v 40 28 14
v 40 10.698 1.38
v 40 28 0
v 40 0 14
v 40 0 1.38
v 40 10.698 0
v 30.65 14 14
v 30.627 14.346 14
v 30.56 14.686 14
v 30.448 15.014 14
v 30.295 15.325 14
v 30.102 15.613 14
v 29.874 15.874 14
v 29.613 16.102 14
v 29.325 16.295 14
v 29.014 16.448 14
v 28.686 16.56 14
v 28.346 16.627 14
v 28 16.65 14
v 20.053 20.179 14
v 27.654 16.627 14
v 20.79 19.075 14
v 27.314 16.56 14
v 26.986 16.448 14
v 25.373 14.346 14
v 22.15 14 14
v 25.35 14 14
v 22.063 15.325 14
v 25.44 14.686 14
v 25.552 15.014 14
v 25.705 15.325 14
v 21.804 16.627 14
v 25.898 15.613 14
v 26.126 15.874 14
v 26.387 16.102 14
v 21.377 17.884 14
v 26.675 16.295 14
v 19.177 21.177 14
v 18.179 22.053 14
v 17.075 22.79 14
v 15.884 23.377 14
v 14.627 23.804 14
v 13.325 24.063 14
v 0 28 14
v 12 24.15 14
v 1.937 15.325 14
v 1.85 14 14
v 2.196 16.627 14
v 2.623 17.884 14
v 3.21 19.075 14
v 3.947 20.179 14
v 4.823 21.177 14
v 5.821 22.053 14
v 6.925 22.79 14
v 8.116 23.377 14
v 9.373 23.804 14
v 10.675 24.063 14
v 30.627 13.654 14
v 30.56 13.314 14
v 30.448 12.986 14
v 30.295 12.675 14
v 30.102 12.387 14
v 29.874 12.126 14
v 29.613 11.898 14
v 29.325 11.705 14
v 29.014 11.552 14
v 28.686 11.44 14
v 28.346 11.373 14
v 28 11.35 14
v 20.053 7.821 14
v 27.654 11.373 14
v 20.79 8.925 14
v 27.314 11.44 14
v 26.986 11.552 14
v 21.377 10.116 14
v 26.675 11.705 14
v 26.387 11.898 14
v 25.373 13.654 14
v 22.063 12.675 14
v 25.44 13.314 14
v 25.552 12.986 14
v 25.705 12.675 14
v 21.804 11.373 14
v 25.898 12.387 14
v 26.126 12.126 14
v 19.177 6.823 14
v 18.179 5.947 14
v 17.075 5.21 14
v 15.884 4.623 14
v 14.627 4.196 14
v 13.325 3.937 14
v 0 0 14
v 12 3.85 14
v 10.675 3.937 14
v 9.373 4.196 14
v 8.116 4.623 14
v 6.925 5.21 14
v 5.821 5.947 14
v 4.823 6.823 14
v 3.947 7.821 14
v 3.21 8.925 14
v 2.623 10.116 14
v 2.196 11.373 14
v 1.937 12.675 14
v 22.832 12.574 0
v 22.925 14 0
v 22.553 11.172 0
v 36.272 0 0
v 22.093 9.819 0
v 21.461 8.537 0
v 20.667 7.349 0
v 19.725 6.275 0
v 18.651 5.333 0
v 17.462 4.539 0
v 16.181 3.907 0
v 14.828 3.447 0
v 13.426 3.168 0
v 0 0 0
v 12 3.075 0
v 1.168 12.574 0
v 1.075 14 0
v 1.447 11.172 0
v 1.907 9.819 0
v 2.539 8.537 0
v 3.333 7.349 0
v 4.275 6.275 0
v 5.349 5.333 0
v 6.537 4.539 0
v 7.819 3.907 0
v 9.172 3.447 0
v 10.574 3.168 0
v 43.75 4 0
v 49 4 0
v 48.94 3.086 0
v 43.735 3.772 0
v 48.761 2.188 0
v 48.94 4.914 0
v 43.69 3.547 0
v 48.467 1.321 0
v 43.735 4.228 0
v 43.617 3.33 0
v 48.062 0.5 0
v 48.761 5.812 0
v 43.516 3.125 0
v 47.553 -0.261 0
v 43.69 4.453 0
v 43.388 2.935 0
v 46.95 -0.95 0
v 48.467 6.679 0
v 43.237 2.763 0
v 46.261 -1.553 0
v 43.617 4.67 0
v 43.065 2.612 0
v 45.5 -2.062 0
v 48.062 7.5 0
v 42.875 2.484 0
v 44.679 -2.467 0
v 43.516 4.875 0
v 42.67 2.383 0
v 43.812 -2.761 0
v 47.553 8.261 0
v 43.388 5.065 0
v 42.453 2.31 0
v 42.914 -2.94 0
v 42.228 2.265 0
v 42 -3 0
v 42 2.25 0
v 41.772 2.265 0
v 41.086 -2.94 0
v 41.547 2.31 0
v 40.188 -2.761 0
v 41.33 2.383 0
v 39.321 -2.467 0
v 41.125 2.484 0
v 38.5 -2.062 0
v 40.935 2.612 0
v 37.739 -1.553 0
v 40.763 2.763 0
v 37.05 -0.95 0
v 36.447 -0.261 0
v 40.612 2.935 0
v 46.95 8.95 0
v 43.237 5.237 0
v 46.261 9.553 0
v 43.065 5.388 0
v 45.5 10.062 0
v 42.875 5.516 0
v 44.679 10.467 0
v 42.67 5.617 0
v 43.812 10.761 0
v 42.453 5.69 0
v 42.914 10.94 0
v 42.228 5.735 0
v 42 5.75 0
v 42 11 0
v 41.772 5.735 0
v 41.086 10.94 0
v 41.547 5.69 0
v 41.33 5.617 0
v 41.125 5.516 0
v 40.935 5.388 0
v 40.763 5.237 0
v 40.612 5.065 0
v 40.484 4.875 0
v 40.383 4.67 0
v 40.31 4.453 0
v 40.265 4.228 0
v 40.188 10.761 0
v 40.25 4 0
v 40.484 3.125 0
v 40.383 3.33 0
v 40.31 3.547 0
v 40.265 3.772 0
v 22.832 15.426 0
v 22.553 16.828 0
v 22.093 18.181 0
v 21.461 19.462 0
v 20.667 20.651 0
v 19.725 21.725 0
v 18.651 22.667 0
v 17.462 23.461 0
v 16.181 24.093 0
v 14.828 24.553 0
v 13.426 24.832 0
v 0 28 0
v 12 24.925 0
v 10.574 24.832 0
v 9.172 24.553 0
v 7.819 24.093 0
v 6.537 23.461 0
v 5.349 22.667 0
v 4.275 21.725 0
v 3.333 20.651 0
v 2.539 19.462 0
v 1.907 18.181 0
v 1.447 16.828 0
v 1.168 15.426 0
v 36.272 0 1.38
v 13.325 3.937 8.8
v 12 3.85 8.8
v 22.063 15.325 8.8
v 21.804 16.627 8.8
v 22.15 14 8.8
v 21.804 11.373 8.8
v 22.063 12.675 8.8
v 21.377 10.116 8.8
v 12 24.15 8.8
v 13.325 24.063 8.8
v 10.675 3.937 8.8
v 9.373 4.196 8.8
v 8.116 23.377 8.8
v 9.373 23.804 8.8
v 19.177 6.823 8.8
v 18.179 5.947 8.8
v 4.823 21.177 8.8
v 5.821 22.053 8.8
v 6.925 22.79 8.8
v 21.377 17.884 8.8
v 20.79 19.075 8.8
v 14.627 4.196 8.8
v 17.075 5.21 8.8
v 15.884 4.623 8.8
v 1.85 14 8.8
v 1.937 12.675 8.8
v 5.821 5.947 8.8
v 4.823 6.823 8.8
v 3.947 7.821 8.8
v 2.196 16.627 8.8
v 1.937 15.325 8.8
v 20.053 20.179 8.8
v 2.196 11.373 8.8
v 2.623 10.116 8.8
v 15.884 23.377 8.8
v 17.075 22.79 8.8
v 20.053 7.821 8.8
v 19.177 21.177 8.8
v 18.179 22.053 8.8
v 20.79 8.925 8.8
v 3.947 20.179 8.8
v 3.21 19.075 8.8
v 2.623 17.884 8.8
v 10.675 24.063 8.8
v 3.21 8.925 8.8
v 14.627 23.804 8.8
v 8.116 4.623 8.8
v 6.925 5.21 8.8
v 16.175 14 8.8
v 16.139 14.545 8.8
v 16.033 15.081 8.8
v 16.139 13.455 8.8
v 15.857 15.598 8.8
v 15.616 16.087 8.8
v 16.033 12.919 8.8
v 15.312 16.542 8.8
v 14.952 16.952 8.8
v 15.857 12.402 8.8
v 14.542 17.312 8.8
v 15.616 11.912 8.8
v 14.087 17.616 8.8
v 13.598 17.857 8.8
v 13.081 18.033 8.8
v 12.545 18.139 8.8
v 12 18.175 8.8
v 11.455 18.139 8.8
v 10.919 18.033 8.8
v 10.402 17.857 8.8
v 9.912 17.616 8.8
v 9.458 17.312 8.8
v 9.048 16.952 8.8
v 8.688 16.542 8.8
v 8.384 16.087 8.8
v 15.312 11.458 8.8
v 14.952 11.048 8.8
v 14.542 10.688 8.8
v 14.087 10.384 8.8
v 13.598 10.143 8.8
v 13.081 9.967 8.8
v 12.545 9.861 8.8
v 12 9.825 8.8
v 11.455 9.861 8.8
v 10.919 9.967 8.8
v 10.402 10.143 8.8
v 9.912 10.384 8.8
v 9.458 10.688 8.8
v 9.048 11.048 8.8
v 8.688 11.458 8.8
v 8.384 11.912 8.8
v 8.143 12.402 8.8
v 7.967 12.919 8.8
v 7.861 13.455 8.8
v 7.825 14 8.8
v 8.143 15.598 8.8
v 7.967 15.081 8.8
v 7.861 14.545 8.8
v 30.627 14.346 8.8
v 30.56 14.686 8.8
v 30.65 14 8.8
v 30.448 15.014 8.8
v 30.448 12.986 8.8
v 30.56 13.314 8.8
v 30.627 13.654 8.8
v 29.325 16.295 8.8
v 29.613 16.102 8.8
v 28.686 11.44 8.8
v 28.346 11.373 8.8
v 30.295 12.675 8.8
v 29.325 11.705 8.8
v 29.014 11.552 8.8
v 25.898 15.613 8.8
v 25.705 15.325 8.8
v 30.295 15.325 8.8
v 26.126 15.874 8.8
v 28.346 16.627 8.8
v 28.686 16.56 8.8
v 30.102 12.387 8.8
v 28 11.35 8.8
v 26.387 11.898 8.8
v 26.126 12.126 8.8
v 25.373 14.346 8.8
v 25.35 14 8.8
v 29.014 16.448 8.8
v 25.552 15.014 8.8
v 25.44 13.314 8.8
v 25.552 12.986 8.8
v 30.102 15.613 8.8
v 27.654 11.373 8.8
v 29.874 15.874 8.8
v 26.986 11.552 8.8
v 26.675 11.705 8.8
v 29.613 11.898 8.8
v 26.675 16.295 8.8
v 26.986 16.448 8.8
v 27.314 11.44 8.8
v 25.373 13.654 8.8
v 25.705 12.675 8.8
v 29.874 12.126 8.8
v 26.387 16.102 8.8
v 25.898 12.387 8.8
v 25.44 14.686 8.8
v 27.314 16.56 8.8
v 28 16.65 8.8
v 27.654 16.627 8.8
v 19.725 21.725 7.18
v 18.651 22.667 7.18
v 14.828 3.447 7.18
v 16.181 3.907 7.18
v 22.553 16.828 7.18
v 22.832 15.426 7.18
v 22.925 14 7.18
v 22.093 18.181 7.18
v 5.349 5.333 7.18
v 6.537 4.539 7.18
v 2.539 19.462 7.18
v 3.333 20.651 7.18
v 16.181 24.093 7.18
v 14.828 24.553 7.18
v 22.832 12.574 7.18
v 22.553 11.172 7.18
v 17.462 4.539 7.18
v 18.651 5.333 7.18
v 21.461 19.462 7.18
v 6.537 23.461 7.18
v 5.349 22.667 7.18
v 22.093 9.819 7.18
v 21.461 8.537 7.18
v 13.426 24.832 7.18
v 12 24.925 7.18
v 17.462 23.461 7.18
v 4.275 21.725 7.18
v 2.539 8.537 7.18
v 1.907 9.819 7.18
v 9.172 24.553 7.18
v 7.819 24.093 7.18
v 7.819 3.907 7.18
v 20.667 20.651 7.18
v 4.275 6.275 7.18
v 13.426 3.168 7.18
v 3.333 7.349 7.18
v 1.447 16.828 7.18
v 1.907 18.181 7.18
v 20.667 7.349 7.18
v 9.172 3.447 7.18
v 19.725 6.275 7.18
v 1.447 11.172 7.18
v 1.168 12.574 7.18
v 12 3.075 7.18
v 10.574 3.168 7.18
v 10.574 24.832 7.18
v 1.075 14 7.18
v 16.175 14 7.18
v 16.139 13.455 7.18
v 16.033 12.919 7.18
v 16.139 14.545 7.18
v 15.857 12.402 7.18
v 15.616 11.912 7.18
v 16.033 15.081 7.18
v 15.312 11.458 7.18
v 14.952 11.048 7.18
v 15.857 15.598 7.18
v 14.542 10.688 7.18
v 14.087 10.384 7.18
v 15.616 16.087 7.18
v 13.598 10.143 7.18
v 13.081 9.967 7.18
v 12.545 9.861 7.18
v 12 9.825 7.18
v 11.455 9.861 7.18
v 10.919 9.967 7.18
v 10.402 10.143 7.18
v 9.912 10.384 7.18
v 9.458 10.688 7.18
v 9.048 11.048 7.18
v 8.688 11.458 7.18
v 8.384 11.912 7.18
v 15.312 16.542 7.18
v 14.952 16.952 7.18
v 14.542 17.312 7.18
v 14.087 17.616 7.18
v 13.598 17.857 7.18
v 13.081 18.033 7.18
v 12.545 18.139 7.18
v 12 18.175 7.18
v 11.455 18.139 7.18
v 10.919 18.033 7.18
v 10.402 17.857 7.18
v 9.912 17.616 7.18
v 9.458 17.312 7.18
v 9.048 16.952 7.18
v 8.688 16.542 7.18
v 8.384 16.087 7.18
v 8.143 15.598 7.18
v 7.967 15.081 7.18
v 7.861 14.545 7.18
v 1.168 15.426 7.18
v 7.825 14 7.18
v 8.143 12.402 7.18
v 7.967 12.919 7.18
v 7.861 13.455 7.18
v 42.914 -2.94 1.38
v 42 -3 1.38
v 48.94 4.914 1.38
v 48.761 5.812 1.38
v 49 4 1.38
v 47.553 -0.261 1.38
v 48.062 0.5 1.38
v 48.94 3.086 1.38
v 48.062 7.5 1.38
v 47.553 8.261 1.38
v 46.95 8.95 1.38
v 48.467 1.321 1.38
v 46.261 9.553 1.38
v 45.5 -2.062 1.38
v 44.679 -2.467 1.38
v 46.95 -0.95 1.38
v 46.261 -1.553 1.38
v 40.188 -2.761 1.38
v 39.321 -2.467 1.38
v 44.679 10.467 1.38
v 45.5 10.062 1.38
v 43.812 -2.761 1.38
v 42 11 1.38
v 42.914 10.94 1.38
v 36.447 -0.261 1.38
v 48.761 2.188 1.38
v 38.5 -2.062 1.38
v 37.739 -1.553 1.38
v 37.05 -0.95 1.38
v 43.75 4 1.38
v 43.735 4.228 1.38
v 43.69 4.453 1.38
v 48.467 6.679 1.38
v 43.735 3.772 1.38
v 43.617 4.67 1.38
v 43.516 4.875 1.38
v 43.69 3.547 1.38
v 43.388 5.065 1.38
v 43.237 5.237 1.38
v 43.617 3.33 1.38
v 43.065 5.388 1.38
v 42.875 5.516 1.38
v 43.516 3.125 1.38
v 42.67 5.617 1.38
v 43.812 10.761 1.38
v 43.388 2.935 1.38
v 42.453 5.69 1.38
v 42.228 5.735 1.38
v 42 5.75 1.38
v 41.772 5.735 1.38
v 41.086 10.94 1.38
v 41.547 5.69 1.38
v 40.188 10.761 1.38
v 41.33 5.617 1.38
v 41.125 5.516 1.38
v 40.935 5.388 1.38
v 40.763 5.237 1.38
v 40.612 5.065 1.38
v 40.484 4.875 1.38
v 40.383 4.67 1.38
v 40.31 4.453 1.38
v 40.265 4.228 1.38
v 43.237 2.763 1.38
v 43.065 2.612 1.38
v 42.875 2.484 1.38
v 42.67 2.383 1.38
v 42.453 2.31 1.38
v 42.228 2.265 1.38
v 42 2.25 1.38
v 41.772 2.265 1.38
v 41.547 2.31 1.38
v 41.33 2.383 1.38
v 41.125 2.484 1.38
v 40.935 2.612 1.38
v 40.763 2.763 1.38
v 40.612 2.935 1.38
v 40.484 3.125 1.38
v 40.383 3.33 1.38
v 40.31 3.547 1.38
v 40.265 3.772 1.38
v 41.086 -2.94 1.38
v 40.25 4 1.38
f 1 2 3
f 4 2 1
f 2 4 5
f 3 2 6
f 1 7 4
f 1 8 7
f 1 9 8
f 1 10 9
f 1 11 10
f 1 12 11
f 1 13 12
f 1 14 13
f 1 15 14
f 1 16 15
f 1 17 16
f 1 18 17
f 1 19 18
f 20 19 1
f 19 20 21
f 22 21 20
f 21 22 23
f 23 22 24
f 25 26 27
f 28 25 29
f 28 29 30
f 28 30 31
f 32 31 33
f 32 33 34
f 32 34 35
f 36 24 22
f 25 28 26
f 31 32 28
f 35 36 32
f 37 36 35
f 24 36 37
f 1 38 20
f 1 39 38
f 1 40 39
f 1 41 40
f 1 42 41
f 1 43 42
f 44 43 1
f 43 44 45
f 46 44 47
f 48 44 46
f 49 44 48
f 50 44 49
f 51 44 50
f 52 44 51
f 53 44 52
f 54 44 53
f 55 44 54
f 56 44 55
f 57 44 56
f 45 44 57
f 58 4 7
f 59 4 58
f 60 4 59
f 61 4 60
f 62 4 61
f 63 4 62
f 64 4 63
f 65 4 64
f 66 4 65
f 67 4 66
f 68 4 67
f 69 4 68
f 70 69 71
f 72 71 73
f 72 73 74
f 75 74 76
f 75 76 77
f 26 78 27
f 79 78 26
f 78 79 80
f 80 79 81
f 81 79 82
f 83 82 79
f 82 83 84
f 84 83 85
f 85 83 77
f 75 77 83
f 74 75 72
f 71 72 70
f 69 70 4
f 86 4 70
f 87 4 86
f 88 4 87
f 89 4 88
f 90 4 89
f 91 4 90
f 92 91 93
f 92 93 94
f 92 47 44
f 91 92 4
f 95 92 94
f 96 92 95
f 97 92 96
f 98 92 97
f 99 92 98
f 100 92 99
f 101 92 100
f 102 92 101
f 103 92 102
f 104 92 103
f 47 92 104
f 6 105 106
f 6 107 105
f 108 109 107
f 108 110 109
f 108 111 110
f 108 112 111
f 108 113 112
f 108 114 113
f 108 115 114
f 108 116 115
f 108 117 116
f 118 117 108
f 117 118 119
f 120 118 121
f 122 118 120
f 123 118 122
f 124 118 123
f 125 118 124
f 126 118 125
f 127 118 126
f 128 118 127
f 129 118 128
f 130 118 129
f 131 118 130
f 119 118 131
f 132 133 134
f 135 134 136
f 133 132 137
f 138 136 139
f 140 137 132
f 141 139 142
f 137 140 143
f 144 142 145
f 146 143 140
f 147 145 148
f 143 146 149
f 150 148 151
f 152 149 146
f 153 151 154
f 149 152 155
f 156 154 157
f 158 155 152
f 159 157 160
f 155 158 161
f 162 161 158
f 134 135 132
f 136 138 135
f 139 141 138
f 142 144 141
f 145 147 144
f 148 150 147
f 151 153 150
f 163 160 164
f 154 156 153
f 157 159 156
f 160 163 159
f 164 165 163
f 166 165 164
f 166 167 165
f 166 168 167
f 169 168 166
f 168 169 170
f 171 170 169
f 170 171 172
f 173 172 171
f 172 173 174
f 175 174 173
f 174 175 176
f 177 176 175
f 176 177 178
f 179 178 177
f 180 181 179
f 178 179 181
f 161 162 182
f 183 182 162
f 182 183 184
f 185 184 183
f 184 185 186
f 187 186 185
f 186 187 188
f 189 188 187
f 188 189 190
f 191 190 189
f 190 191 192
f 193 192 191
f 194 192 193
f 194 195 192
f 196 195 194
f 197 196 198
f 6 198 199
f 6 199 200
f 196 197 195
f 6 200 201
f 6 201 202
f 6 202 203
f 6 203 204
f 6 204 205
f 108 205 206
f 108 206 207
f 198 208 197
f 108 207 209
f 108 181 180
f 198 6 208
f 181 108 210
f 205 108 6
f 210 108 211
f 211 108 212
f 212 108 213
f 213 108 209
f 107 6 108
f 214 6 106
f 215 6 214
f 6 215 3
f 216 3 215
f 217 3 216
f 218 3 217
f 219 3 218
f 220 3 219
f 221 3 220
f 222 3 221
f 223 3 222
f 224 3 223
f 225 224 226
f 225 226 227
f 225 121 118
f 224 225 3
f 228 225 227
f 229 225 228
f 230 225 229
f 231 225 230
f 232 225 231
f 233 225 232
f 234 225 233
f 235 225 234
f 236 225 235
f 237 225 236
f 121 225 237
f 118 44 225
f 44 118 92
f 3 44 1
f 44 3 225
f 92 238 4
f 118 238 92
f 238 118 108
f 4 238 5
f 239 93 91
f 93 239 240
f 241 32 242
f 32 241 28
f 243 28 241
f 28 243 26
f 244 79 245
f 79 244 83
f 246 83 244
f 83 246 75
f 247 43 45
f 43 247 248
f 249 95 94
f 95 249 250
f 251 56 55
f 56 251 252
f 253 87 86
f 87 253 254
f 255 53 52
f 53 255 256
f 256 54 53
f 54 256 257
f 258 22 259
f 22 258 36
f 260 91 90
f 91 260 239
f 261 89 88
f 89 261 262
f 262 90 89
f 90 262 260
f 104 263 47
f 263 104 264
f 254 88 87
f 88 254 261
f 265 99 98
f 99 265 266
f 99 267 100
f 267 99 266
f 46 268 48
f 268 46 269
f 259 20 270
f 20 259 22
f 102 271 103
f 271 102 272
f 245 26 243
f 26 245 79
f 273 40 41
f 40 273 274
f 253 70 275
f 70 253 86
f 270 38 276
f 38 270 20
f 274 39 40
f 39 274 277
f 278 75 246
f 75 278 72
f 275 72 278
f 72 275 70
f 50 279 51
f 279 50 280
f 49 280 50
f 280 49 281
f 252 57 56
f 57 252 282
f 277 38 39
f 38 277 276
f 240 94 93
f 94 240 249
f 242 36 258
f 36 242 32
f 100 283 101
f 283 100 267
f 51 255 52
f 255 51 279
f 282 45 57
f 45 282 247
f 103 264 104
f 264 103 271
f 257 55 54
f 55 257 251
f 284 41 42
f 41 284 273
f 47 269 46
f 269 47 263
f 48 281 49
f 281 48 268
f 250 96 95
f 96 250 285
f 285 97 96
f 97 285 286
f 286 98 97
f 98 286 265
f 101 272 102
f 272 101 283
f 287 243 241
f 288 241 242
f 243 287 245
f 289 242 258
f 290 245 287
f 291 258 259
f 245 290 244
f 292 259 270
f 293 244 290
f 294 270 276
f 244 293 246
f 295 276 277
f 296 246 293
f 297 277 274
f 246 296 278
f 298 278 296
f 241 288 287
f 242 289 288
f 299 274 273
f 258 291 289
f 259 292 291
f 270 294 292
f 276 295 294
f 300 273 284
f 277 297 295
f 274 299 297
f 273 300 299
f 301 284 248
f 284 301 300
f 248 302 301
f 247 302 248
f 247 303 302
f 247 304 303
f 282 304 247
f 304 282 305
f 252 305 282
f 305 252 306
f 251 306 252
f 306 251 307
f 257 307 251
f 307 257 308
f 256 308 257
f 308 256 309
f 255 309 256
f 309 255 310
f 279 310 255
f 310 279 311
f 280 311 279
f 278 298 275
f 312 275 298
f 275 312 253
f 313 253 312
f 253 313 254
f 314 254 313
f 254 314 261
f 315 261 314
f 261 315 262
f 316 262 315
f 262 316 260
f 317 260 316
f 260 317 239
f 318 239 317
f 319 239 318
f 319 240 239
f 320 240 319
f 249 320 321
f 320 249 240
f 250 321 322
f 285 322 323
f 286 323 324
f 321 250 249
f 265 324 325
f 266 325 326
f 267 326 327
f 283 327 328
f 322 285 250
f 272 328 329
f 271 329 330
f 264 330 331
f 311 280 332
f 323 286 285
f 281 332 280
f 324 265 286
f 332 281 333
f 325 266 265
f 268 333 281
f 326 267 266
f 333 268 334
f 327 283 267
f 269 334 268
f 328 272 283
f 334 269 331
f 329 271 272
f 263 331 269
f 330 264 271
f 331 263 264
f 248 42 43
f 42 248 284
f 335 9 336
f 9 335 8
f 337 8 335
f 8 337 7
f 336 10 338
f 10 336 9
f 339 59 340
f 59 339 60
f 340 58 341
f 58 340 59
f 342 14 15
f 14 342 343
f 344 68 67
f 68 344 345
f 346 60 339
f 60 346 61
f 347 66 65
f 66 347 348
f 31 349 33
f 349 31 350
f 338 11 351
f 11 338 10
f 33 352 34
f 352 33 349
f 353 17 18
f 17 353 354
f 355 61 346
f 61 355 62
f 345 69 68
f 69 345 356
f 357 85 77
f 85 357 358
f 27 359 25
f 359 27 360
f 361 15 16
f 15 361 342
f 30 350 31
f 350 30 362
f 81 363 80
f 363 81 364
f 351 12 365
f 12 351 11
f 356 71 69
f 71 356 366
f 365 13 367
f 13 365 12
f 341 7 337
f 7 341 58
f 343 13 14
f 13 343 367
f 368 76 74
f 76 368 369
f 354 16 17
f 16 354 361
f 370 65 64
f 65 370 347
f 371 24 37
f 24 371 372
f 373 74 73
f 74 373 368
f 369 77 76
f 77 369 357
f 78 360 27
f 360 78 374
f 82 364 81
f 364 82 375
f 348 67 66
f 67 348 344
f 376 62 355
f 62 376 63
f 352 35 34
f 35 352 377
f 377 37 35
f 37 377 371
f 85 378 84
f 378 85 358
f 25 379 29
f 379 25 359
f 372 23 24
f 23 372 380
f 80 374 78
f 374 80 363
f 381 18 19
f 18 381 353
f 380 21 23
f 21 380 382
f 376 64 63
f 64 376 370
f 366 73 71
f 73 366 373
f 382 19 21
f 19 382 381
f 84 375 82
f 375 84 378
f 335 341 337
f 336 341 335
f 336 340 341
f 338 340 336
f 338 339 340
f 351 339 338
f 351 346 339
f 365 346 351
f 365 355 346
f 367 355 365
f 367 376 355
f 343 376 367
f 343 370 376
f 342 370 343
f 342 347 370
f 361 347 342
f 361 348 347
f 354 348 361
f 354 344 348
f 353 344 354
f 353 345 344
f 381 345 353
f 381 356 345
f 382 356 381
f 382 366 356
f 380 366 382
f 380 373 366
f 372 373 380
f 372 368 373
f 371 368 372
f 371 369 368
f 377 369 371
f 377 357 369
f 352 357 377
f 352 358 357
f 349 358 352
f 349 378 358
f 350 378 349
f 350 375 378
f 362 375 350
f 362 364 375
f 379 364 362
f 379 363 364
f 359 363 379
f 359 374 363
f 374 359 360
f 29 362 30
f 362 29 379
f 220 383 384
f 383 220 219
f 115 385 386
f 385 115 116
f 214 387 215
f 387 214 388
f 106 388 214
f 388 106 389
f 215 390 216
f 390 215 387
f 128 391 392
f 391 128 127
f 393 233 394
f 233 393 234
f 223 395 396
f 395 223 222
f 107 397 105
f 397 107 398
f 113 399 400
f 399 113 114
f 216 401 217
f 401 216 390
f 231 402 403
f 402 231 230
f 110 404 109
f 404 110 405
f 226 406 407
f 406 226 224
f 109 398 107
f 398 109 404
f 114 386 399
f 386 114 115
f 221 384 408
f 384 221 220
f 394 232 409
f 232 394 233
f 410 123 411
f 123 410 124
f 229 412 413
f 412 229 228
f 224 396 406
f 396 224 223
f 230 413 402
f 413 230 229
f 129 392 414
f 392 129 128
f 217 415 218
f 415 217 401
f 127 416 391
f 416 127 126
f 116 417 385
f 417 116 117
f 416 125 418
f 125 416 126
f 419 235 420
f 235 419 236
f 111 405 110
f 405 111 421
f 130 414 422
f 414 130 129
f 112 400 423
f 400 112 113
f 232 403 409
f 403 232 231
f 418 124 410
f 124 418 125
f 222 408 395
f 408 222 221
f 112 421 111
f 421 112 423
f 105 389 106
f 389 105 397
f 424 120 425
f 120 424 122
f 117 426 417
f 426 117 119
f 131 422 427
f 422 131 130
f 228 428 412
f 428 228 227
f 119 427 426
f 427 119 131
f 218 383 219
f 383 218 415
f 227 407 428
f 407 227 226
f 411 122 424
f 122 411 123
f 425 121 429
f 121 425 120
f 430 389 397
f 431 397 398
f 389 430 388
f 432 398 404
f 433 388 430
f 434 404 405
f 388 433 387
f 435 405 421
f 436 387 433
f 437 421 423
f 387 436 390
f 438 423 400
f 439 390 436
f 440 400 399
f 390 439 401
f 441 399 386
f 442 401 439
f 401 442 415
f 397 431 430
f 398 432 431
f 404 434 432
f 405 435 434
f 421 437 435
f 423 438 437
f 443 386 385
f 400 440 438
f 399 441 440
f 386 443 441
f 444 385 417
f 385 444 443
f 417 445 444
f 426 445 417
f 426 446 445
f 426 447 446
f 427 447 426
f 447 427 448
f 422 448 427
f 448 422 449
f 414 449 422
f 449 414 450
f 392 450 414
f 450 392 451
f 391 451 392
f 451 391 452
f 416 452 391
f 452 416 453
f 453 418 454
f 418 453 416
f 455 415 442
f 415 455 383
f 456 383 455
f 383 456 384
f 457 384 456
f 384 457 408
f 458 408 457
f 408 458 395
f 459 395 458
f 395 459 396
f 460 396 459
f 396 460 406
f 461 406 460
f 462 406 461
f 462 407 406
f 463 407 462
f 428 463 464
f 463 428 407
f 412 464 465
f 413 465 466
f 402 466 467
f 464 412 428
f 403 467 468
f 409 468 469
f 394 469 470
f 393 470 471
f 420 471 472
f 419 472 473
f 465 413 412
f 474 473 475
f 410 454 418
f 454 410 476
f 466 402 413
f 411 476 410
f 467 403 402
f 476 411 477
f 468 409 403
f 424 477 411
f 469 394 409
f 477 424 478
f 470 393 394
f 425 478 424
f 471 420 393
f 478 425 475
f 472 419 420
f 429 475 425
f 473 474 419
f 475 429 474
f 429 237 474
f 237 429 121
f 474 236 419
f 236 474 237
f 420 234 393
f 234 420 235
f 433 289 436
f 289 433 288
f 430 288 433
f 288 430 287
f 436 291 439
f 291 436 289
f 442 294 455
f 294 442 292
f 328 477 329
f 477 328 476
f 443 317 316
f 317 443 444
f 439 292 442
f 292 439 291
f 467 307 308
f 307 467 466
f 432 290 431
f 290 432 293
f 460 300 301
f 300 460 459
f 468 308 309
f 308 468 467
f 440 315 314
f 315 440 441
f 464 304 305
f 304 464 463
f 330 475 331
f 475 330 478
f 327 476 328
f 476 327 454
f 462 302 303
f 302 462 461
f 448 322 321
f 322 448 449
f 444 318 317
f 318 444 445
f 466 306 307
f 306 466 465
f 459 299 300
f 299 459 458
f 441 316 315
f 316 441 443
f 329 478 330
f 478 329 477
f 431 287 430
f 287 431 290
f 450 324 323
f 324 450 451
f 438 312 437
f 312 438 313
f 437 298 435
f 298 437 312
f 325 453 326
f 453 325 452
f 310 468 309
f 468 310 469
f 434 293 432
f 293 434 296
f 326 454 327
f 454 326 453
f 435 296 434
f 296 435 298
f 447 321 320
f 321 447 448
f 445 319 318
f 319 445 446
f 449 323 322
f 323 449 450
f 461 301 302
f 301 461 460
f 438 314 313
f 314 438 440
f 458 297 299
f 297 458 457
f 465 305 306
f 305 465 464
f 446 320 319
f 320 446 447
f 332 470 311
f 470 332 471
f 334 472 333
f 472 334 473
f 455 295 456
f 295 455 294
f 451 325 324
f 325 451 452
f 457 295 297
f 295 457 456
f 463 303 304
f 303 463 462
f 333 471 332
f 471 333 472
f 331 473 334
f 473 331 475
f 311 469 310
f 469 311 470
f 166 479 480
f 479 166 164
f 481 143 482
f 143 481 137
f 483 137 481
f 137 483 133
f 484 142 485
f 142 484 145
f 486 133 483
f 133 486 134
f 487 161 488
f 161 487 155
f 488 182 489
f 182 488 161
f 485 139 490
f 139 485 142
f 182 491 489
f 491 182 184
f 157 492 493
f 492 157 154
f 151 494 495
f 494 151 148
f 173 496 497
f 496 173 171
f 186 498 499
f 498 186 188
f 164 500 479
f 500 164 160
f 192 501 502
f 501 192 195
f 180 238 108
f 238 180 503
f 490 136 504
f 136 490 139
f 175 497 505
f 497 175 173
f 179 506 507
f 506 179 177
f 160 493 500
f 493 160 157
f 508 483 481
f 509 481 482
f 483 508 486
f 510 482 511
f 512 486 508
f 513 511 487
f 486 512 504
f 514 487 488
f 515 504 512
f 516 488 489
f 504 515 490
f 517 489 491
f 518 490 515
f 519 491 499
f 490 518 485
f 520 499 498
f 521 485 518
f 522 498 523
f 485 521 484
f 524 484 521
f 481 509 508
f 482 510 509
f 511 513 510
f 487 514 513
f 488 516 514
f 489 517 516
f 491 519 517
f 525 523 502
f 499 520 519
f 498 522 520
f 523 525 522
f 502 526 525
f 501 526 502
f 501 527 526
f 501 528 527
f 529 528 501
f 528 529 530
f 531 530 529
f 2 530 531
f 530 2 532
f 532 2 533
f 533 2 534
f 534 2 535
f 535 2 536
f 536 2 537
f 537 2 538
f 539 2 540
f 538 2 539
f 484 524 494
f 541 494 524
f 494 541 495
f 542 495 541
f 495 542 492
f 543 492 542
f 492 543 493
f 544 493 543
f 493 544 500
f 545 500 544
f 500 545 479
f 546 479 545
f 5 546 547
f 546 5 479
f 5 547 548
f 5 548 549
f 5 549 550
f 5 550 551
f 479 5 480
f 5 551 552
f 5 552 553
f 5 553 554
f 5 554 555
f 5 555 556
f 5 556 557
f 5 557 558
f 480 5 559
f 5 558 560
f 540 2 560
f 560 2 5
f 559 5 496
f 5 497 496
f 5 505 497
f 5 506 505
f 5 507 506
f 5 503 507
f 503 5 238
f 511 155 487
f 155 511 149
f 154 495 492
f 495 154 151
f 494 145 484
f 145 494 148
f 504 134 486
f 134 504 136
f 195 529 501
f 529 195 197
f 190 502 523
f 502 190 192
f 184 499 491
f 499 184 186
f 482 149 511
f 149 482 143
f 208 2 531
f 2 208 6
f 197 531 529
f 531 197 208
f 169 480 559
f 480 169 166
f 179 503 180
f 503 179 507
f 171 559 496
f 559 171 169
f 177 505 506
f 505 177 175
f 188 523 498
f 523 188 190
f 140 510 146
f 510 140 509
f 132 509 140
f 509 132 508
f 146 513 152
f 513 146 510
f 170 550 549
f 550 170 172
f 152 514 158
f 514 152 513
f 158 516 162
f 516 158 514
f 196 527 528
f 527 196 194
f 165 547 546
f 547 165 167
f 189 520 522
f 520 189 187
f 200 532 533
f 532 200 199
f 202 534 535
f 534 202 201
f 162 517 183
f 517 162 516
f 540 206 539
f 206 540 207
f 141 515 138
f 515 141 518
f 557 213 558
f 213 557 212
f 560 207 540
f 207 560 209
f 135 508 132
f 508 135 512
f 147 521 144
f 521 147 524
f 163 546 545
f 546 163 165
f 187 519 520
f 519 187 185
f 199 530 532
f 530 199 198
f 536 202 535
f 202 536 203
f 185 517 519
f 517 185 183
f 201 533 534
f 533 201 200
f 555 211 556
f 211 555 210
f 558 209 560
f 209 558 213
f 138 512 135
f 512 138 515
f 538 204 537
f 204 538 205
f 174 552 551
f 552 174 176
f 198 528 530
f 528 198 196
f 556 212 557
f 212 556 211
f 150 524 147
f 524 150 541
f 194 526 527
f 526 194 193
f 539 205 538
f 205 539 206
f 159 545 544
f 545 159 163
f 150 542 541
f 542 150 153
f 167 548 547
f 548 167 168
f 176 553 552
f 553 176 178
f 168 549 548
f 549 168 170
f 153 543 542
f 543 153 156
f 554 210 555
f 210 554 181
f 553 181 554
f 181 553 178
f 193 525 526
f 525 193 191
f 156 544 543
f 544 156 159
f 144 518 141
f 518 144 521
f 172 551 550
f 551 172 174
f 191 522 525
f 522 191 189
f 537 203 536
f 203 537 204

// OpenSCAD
// file: parameters.scad
// =============================================================================
// Gen-W Triple-rotor dual-stator sandwich — WOUND-AWARE (HARD GATE)
// RotorA | StatorA | RotorMid | StatorB | RotorB
// Magnets: outer 5+5 Ø20, mid 6 Ø20 (3/face); Ø5 Halbach 16+16+16
// =============================================================================

wire_awg            = 26;
wire_od             = 0.45;
turns               = 110;      // 18 pancakes × 110 t ≈ 198 m @ mean 0.10 m
fill                = 0.70;
layers_per_face     = 2;
wind_build_axial    = layers_per_face * wire_od * fill;   // 0.63
wind_build_radial   = 2.8 * wire_od * fill;               // 0.882

coil_id_r           = 23.0;
coil_od_r           = 56.0;
span_deg            = 34.0;     // 9 stations × 40°
former_web          = 2.0;
flange_t            = 0.75;
wall                = 1.2;
slot_w              = 2.4;
mount_hole          = 3.5;
tab_len             = 7.0;

former_bare_h       = former_web + 2 * flange_t;            // 3.5
coil_envelope_h     = former_bare_h + 2 * wind_build_axial; // 4.76

// Each gap: magnet ↔ wound ≥ 0.75
run_clear           = 0.75;
gap_spacer_h        = run_clear + wind_build_axial;         // 1.38
// Outer gap m2m (outer rotor ↔ mid rotor face through one stator):
m2m_outer           = coil_envelope_h + 2 * run_clear;      // 6.26
m2m_inner           = m2m_outer;                            // symmetric gaps

coil_stations       = 9;        // per stator; ×2 = 18
bay_r_in            = coil_id_r - 2.0 - wind_build_radial;
bay_r_out           = coil_od_r + 2.0 + wind_build_radial;
bay_span            = span_deg + 4.0;
bay_offset          = 2.0;
bay_depth           = former_bare_h + wind_build_axial;     // seat bare+back wind
stator_back_web     = 2.0;
stator_thick        = bay_depth + stator_back_web;          // ~6.13
stator_od           = 156.0;
shaft_clear_stator  = 40.0;
coil_mount_r        = 30.0;

// Outer rotors: 5×Ø20 + 16×Ø5 each; Mid: 3+3 Ø20 + 16 Ø5 (both faces)
large_pocket_d      = 20.3;
small_pocket_d      = 5.3;
pocket_h            = 5.2;
outer_large_n       = 5;
mid_large_n_face    = 3;        // 3 per face = 6 mid
R_large             = 52.0;
R_small_inner       = 40.0;
R_small_mid         = 52.0;
R_small_outer       = 64.0;
carrier_od          = 152.0;
outer_carrier_thick = 7.5;
mid_carrier_thick   = 12.0;     // dual face 5.2+1.6+5.2
hub_h               = 10.0;
hub_od              = 30.0;

shaft_bore          = 8.35;
bearing_d           = 21.85;
bearing_h           = 7.2;
m3_clear            = 3.5;
bolt_r_inner        = 36.0;
bolt_n_inner        = 6;
flange_bolt_r       = 72.0;
flange_bolt_n       = 6;
brace_r             = 68.0;
brace_d             = 4.3;
brace_n             = 4;

spacer_pad_od       = 14.0;
spacer_pad_id       = m3_clear;
endbell_od          = 156.0;
endbell_thick       = 8.0;
endbell_shaft_clear = 10.0;

$fn = 64;
// main file
// Gen-W fit coupon — magnet pockets + 608 + spacer height
include <parameters.scad>;
$fn = 48;
block_w = 40; block_d = 28; block_h = 14;
difference() {
    cube([block_w, block_d, block_h]);
    translate([12, block_d/2, block_h - pocket_h])
        cylinder(d=large_pocket_d, h=pocket_h + 0.2);
    translate([28, block_d/2, block_h - pocket_h])
        cylinder(d=small_pocket_d, h=pocket_h + 0.2);
    translate([12, block_d/2, -0.02])
        cylinder(d=bearing_d, h=bearing_h);
    translate([12, block_d/2, -0.1])
        cylinder(d=shaft_bore, h=block_h + 1);
}
translate([block_w + 2, 4, 0])
    difference() {
        cylinder(d=spacer_pad_od, h=gap_spacer_h);
        translate([0, 0, -0.1]) cylinder(d=spacer_pad_id, h=gap_spacer_h + 0.2);
    }
